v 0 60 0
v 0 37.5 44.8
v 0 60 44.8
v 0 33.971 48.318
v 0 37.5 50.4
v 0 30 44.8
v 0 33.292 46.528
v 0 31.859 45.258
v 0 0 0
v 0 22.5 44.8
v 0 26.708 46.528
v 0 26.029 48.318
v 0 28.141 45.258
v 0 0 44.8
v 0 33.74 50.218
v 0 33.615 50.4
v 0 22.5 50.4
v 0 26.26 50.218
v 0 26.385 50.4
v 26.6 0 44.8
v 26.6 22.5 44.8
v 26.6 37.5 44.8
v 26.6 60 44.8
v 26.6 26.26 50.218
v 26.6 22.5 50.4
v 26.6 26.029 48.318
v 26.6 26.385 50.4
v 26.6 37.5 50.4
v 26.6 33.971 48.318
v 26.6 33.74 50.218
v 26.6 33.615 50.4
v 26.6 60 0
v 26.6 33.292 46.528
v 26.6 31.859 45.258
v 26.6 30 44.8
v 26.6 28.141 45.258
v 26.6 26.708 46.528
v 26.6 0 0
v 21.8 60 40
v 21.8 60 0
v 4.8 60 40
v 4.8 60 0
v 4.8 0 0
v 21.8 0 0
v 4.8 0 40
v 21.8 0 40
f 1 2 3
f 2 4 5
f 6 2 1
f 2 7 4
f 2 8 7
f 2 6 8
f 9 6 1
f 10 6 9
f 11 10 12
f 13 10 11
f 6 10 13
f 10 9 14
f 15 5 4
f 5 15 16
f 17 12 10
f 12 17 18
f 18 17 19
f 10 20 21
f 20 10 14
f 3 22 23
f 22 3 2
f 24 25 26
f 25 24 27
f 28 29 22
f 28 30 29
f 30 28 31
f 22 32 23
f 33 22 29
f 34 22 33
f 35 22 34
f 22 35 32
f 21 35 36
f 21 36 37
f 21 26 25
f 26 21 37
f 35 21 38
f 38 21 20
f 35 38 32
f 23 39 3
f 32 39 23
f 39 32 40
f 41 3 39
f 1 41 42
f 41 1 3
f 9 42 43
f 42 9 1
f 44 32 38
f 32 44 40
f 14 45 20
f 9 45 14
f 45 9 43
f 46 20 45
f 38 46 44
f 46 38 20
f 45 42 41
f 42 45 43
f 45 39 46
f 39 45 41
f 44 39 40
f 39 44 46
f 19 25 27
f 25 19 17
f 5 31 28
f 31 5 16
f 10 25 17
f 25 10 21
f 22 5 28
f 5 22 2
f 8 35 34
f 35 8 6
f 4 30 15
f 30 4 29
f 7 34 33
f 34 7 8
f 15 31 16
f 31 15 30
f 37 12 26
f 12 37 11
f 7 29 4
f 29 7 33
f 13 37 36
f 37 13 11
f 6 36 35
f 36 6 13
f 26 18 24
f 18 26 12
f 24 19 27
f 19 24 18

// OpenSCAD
thickness=4.8;
length=60;
height=40;
clip=17;
width=clip+2*thickness;
clip_h=height+thickness;

roller_d=8;
roller_len=15;


module roller() {
    difference() {
        translate([0,length/2-roller_len/2,clip_h])
            cube([width,roller_len,roller_d/2+roller_d/5]);
        translate([0,length/2,clip_h+roller_d/2])
            rotate([0,90,0])cylinder(d=roller_d, h=width);
    }
}


module clip() {
    difference() {
        cube([width,length,clip_h]);
        translate([thickness,0,0])cube([clip,length,height]);
    }
};

clip();
roller();
